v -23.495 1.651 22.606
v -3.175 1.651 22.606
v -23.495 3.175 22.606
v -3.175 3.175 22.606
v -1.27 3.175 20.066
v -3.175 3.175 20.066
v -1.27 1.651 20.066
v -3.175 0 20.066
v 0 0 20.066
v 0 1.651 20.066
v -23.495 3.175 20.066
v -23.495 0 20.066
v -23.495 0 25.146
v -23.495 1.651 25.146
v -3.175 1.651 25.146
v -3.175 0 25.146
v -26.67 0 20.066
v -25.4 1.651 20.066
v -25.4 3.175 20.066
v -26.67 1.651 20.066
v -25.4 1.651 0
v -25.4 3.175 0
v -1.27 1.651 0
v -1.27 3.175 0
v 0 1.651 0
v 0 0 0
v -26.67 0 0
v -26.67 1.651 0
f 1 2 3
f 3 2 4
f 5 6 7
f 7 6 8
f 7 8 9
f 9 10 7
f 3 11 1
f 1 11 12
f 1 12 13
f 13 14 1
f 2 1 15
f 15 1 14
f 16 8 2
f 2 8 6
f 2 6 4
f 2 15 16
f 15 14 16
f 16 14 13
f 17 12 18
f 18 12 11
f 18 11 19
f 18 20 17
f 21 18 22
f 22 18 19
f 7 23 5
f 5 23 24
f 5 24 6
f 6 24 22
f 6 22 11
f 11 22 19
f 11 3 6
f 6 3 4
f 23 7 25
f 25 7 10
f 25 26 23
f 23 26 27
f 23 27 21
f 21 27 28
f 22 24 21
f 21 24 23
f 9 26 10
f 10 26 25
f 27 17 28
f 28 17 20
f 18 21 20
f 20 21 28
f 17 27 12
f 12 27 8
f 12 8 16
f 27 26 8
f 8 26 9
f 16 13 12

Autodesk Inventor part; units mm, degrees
ref_plane "YZ Plane" through (0, 0, 0) normal (1, 0, 0) x (0, 1, 0)
ref_plane "XZ Plane" through (0, 0, 0) normal (0, 1, 0) x (-1, 0, 0)
ref_plane "XY Plane" through (0, 0, 0) normal (0, 0, 1) x (1, 0, 0)
sketch "Sketch4" plane through (0, 0, 0) normal (0, 1, 0) x (-1, 0, 0)
  line L0 (0, 0) -> (26.67, 0)
  line L1 (26.67, 0) -> (26.67, 20.066)
  line L2 (26.67, 20.066) -> (0, 20.066)
  line L3 (0, 20.066) -> (0, 0)
  dimension "d20" = 20.066
  dimension "d21" = 26.67
extrude "Extrusion4" add sketch "Sketch4" along normal blind 1.651
sketch "Sketch5" plane through (0, 1.651, 0) normal (0, 1, 0) x (1, 0, 0)
  line L0 (-26.67, -20.066) -> (0, -20.066) projected
  line L1 (-25.4, -20.066) -> (-1.27, -20.066)
  line L2 (-1.27, -20.066) -> (-1.27, 0)
  line L3 (-1.27, 0) -> (-25.4, 0)
  line L4 (-25.4, 0) -> (-25.4, -20.066)
  line L5 (-26.67, 0) -> (-26.67, -20.066) projected
  line L6 (0, 0) -> (-26.67, 0) projected
  line L7 (0, -20.066) -> (0, 0) projected
  point P0 (-1.27, -20.066)
  dimension "d24" = 1.27
  dimension "d25" = 0
  dimension "d26" = 1.27
extrude "Extrusion5" add sketch "Sketch5" along normal blind 1.524 contours L4 L3 L2 L0
sketch "Sketch8" plane through (-26.67, 0, 20.066) normal (0, 0, 1) x (1, 0, 0)
  line L0 (3.175, 1.651) -> (23.495, 1.651)
  line L1 (23.495, 1.651) -> (23.495, 0)
  line L2 (23.495, 0) -> (3.175, 0)
  line L3 (3.175, 0) -> (3.175, 1.651)
  line L4 (0, 0) -> (26.67, 0) projected
  line L5 (26.67, 0) -> (26.67, 1.651) projected
  line L6 (0, 0) -> (0, 1.651) projected
  dimension "d42" = 20.32
  dimension "d43" = 1.651
  dimension "d44" = 0
  dimension "d45" = 26.67
  dimension "d46" = 3.175
extrude "Extrusion8" add sketch "Sketch8" along normal blind 5.08
sketch "Sketch9" plane through (-23.495, 1.651, 20.066) normal (0, 1, 0) x (1, 0, 0)
  line L0 (0, 0) -> (0, -5.08) projected
  line L1 (20.32, -2.54) -> (0, -2.54)
  line L2 (0, 0) -> (20.32, 0)
  line L3 (20.32, 0) -> (20.32, -2.54)
  line L4 (20.32, -2.54) -> (0, -2.54)
  line L5 (0, -2.54) -> (0, 0)
  point P0 (23.495, 20.066)
extrude "Extrusion9" add sketch "Sketch9" along normal blind 1.524
equation "\"d26\" = d24"
equation "\"d46\" = -0.5 * d42 + 0.5 * d45"
properties part number "_3DPrint"
